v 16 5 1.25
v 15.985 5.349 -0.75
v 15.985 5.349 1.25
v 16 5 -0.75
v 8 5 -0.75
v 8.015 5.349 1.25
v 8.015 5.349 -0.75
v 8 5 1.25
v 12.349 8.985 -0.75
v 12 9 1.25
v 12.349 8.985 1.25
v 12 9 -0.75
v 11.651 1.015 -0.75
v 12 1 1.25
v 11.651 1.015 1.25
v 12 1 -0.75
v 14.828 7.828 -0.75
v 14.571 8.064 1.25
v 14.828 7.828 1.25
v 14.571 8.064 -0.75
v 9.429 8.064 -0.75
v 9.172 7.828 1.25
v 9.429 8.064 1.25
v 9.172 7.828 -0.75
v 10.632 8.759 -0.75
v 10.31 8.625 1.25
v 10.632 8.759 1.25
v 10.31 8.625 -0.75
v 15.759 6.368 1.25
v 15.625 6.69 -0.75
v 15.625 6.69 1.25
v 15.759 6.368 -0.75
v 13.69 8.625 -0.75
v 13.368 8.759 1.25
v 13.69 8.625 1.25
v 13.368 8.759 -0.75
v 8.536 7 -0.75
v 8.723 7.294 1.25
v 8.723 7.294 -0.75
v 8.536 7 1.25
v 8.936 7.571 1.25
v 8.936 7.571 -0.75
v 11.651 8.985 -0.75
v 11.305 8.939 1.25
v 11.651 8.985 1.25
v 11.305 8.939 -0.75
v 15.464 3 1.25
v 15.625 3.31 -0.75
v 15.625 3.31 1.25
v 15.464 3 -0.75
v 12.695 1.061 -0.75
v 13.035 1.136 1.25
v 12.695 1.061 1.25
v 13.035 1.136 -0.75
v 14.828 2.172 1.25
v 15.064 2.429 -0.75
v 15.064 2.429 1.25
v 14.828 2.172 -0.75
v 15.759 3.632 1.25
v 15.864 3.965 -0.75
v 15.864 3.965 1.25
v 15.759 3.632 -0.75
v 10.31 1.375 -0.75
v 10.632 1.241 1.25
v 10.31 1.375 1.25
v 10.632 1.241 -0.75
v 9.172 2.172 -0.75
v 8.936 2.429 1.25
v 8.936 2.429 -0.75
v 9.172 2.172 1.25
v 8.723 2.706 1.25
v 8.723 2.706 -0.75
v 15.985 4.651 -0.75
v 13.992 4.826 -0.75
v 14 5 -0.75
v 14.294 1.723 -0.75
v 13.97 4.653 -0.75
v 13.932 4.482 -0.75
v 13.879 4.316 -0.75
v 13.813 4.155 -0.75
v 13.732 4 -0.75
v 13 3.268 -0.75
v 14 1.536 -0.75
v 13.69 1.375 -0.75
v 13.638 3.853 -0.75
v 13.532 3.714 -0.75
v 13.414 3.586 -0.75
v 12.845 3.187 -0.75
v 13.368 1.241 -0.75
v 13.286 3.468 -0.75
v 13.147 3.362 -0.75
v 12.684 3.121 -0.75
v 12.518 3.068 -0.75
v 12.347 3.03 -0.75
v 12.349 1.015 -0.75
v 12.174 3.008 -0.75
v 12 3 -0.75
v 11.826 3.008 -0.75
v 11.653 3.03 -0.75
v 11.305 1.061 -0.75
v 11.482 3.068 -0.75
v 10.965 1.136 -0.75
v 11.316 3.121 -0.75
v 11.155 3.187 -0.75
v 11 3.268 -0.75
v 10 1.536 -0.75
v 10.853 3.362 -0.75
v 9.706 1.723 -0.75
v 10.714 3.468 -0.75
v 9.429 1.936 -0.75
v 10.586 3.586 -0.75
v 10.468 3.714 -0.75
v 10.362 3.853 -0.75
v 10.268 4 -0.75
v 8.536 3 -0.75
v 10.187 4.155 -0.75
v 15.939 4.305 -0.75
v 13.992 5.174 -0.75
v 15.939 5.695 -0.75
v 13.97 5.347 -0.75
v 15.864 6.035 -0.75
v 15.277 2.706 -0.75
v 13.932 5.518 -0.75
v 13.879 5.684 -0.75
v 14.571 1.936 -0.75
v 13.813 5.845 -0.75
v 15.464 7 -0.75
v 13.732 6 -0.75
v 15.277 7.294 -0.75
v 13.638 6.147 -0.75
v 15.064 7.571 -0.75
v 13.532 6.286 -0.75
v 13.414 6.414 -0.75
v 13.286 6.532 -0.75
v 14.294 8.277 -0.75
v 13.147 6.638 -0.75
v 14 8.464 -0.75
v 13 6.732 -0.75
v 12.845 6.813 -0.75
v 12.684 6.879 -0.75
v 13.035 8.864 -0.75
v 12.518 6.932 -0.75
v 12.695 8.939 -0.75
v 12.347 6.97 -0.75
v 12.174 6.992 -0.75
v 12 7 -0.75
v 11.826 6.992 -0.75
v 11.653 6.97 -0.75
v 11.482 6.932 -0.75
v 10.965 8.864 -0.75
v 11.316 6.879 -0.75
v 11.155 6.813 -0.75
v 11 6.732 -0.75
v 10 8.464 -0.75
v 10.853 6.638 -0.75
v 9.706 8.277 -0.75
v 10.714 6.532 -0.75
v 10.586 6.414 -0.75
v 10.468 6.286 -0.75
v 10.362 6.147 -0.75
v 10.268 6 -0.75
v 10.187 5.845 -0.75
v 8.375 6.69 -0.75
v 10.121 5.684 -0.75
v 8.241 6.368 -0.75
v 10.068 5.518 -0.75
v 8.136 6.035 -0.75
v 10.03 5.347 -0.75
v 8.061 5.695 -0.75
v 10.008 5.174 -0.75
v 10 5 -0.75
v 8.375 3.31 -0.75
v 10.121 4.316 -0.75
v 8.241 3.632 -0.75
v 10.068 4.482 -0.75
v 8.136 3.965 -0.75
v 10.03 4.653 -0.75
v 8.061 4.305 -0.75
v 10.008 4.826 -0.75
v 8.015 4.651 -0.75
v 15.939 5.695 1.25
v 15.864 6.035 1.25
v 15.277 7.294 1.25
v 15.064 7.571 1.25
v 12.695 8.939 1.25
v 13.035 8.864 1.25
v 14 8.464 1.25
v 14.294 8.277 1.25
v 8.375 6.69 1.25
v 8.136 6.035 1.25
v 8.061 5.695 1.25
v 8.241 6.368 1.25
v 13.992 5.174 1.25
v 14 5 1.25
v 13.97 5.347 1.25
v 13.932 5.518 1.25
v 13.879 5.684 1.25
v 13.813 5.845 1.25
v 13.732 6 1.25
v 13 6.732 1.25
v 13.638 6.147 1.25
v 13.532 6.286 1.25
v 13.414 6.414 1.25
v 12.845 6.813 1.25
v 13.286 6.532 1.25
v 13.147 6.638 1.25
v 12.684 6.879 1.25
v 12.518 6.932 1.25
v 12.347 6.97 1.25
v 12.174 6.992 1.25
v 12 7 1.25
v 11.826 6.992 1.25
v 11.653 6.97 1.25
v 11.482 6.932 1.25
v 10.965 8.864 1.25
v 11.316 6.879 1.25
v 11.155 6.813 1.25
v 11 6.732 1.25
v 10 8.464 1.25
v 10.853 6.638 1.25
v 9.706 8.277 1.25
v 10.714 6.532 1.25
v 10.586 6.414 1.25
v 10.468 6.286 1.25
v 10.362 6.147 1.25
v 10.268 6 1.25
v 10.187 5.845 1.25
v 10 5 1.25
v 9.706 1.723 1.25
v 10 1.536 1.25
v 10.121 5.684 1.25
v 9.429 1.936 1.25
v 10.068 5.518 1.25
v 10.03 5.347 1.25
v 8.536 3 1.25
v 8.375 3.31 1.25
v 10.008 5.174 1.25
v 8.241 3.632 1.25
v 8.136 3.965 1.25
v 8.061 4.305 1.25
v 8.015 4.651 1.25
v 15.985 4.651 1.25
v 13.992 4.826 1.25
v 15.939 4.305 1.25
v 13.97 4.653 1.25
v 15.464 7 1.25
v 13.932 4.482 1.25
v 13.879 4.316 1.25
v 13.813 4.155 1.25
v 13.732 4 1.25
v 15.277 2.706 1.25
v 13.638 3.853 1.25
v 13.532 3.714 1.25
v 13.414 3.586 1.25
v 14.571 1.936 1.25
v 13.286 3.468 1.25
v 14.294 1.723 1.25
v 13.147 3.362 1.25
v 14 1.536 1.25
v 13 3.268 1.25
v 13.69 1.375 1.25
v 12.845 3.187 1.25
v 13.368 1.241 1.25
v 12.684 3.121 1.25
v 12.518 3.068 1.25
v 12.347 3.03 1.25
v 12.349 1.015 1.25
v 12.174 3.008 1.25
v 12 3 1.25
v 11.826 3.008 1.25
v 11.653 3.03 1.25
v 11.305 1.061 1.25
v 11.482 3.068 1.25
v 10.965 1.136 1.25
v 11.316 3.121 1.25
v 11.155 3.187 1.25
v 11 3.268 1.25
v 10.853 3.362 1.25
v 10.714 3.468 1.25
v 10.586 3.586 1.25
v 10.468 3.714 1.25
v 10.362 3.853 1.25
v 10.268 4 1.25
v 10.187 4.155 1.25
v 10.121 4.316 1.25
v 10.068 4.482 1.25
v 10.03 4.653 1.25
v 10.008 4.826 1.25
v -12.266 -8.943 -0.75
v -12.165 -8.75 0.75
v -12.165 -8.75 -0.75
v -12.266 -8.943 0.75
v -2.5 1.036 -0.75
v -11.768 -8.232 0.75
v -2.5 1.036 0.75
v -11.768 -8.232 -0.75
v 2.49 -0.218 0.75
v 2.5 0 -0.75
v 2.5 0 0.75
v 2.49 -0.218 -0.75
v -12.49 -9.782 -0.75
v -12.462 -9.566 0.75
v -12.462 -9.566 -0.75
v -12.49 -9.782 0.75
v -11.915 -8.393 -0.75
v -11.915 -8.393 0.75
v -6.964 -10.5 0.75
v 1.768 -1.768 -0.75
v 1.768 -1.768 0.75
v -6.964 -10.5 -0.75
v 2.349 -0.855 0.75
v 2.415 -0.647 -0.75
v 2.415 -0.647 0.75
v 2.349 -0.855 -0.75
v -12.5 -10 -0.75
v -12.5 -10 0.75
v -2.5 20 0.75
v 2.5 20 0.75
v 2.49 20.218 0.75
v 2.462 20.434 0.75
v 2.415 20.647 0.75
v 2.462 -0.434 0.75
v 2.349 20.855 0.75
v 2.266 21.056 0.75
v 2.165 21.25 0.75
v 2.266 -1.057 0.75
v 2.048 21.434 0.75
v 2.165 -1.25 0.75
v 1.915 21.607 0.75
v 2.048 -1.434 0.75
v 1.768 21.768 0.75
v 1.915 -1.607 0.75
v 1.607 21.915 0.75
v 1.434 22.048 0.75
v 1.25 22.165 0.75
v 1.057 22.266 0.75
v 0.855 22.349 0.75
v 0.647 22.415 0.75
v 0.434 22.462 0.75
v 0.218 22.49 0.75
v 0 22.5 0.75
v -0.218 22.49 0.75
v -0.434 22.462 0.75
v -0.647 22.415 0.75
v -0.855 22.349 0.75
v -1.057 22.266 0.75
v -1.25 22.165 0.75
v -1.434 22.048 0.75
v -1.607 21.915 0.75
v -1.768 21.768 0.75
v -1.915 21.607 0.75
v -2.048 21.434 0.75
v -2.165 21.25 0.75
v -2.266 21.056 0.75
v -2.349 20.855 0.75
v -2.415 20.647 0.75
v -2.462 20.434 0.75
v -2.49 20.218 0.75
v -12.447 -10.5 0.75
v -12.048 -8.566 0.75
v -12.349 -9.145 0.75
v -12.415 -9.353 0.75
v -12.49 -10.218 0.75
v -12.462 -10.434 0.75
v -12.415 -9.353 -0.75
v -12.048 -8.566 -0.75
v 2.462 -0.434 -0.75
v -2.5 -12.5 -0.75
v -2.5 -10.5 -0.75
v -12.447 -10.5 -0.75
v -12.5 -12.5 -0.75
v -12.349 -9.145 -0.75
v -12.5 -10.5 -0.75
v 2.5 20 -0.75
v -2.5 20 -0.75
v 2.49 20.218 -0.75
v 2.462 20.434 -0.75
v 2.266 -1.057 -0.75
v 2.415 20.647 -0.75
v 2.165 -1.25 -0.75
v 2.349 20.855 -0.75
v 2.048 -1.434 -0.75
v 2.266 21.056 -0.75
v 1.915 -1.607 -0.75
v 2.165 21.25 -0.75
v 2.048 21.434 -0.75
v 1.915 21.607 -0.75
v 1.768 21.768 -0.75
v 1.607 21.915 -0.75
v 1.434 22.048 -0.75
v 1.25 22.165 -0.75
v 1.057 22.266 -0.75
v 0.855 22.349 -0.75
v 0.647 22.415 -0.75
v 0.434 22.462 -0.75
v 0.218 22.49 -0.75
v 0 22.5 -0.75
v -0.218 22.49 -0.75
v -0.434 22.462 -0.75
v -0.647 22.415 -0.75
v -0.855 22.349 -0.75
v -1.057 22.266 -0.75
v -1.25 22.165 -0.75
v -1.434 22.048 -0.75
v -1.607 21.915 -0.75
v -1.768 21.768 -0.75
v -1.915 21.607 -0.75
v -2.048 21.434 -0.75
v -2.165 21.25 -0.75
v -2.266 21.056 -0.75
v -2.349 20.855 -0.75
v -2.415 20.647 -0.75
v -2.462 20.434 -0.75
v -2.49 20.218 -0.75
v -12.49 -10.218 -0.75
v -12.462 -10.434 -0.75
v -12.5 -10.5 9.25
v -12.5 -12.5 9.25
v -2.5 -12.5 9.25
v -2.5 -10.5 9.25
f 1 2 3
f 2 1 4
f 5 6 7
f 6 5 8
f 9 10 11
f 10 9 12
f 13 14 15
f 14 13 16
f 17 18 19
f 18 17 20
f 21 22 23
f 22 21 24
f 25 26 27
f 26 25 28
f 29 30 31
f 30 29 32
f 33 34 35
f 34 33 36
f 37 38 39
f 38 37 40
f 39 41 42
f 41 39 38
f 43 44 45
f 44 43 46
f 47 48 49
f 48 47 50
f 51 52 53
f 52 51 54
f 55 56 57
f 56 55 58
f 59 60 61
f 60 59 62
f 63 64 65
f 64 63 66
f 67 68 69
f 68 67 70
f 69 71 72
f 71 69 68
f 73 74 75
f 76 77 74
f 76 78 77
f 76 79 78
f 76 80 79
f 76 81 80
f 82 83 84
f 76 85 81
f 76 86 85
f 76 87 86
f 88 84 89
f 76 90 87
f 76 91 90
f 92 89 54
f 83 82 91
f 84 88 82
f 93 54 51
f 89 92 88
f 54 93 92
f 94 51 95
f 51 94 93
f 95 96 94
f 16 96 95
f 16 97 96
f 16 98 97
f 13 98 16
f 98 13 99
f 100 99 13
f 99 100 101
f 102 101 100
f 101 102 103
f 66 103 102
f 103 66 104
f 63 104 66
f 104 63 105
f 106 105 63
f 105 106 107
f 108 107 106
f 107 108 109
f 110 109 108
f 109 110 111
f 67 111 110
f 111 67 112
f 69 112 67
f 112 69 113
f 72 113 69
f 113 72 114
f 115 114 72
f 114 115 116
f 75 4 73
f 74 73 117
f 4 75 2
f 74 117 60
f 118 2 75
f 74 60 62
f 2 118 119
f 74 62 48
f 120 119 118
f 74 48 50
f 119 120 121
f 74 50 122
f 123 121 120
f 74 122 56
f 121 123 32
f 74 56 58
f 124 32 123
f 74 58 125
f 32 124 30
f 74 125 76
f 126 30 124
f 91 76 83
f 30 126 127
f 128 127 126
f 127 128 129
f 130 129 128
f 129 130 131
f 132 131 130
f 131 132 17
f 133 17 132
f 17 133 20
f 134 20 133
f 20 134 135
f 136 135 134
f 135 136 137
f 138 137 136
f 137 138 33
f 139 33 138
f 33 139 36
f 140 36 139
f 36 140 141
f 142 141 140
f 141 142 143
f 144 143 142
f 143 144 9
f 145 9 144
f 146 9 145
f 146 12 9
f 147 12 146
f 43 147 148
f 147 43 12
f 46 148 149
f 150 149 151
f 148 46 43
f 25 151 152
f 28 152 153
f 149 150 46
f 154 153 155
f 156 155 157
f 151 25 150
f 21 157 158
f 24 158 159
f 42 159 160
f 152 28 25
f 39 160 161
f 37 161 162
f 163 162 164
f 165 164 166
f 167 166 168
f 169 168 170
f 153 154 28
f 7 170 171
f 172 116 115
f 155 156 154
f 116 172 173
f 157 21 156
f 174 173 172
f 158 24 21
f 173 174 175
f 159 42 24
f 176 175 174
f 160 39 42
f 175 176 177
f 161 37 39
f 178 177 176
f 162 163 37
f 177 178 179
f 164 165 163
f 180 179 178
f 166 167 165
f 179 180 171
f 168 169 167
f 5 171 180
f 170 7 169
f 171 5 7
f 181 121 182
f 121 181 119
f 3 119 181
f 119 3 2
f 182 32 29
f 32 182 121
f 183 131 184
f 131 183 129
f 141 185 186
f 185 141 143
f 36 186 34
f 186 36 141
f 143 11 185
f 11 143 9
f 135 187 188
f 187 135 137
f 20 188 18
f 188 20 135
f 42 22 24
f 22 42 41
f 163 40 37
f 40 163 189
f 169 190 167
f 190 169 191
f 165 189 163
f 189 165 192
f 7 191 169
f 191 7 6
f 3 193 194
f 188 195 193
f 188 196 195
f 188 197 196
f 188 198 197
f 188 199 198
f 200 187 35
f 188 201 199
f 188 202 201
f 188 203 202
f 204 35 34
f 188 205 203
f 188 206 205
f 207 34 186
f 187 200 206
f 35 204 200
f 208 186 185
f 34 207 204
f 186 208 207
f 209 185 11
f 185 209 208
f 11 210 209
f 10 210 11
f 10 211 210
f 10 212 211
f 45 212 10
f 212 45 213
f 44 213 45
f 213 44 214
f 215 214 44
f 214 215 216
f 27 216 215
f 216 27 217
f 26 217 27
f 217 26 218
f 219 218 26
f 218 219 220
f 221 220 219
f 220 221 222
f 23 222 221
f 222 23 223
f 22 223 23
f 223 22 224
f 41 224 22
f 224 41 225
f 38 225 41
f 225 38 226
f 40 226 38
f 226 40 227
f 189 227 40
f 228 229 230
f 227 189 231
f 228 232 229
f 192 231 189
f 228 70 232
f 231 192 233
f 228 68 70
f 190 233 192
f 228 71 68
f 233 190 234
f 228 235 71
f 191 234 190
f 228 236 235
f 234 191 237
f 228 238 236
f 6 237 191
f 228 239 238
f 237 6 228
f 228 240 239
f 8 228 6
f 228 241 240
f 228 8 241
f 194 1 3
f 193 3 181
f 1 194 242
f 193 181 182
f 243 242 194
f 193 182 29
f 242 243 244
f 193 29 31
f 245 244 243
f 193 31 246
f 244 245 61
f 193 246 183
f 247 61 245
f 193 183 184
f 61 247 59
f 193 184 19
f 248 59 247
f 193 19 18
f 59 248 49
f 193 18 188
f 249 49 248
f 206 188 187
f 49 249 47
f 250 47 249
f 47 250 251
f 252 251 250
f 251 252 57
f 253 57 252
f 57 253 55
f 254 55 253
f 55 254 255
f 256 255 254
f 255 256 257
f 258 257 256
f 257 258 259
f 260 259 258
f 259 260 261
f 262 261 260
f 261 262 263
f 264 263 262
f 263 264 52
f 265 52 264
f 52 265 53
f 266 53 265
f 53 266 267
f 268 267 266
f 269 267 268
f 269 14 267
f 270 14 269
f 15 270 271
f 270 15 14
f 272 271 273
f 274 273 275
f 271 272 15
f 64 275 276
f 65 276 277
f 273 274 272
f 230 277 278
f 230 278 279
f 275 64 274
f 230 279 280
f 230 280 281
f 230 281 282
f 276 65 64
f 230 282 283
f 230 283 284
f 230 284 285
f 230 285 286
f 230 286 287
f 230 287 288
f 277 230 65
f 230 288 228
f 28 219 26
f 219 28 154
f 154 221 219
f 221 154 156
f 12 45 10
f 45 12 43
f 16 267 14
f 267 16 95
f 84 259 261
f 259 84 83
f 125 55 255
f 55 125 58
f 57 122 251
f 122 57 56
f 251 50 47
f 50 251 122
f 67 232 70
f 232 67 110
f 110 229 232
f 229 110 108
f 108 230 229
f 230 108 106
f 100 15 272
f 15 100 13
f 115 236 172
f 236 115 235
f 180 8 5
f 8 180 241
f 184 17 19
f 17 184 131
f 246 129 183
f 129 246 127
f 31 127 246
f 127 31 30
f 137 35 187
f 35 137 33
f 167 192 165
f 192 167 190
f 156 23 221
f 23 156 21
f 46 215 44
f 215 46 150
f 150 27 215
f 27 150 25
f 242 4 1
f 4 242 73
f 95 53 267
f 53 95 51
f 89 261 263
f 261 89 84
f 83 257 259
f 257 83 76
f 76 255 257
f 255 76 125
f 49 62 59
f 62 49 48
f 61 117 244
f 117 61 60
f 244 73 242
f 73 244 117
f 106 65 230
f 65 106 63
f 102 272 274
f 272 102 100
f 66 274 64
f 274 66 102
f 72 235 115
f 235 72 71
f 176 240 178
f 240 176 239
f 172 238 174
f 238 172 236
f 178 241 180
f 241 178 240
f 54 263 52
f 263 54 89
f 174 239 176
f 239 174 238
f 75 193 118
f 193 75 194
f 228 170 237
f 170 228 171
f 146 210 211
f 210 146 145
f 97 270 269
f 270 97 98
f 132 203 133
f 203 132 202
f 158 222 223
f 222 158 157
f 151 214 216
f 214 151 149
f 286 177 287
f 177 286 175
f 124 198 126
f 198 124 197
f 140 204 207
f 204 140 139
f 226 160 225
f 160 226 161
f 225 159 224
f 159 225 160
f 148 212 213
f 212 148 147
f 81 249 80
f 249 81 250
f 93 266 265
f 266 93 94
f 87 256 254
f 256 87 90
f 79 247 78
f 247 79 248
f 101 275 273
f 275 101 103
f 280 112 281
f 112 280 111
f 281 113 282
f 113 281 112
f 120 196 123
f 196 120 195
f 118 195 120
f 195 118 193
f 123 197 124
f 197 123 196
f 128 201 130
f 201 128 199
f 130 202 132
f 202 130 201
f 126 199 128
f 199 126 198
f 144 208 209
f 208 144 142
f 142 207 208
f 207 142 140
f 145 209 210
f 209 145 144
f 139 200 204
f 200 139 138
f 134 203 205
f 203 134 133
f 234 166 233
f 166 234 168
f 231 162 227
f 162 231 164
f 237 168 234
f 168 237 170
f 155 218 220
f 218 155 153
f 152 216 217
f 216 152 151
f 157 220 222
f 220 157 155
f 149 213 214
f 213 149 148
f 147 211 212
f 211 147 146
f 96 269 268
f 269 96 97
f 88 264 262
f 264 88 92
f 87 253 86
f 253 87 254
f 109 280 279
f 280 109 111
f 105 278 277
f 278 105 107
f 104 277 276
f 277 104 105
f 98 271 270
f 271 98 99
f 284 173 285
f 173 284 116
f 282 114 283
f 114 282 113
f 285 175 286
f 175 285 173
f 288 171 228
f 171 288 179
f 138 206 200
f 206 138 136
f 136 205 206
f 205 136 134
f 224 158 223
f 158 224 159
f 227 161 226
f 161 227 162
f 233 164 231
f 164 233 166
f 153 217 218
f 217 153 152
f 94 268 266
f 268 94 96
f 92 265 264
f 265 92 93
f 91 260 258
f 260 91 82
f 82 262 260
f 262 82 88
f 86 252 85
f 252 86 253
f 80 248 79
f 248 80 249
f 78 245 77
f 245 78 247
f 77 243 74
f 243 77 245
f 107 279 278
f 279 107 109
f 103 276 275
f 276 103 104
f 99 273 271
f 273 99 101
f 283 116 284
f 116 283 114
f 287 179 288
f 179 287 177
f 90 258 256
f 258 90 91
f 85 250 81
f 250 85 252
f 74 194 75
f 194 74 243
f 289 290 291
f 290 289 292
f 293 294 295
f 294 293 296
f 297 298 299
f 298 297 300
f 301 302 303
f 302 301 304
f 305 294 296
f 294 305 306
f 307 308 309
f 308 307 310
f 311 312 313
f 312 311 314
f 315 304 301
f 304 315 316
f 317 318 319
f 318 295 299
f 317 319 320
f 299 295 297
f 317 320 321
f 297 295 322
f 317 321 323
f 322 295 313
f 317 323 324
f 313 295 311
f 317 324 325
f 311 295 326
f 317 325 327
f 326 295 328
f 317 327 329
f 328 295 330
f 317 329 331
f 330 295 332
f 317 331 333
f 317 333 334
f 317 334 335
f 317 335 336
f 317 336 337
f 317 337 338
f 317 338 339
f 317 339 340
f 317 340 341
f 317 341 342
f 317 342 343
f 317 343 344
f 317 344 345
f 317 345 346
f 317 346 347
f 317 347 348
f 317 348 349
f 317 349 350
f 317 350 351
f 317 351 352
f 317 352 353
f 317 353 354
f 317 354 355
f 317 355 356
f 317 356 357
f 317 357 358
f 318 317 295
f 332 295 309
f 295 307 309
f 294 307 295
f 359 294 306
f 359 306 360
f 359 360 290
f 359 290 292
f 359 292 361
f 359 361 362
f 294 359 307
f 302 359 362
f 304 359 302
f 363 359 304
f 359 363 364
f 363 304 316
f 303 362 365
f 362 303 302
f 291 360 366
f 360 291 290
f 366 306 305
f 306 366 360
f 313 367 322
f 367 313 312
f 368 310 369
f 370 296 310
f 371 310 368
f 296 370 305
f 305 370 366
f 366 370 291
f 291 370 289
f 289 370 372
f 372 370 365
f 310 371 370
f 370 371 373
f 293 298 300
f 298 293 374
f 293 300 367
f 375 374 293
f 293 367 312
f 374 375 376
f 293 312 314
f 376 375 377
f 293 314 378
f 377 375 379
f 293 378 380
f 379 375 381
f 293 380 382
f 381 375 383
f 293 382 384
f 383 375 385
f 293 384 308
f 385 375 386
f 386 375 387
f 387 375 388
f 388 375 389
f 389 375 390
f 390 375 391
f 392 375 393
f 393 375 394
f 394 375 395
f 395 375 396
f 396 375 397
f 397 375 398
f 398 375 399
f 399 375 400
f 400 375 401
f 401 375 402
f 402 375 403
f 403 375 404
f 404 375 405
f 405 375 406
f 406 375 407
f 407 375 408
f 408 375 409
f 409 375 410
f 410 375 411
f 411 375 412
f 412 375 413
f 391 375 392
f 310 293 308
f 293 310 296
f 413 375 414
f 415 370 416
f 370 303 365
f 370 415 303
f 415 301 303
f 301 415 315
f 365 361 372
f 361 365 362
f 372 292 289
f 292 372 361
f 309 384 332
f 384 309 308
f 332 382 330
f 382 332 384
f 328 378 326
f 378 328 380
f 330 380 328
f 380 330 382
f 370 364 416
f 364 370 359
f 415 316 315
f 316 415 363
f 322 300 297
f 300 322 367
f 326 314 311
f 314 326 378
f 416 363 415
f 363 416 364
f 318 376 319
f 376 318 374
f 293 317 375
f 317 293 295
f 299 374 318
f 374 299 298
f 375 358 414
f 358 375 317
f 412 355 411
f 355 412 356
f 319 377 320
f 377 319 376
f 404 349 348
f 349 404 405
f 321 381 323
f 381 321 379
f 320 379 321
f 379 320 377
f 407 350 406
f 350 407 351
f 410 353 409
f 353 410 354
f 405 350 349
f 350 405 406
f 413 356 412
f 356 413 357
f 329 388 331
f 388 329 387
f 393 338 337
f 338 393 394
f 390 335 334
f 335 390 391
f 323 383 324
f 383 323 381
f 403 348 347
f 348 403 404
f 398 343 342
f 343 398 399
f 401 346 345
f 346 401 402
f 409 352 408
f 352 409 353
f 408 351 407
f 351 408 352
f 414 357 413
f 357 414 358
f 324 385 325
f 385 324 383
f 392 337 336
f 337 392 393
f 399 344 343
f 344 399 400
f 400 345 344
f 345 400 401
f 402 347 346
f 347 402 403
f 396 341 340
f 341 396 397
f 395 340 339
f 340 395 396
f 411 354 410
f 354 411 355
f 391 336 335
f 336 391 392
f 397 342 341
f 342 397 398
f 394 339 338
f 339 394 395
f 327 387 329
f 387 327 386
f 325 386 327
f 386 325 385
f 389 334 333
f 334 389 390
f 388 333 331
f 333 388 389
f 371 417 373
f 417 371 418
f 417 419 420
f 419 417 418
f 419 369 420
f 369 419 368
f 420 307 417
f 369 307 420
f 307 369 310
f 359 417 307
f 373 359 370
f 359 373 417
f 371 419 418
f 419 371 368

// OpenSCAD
$fa=5; $fs=0.1;

hull(){
    cylinder(h=1.5, r=2.5, center=true);
    translate([-10, -10, 0]) cylinder(h=1.5, r=2.5, center=true);
}

hull(){
    cylinder(h=1.5, r=2.5, center=true);
    translate([0, 20, 0]) cylinder(h=1.5, r=2.5, center=true);
}

translate([-12.5, -12.5, -0.75]) cube([10, 2, 10]);

translate([12, 5, 0.25]) // шайба
    difference(){
        cylinder(h=2, r=4, center=true);
        cylinder(h=2.01, r=2, center=true);
    }
